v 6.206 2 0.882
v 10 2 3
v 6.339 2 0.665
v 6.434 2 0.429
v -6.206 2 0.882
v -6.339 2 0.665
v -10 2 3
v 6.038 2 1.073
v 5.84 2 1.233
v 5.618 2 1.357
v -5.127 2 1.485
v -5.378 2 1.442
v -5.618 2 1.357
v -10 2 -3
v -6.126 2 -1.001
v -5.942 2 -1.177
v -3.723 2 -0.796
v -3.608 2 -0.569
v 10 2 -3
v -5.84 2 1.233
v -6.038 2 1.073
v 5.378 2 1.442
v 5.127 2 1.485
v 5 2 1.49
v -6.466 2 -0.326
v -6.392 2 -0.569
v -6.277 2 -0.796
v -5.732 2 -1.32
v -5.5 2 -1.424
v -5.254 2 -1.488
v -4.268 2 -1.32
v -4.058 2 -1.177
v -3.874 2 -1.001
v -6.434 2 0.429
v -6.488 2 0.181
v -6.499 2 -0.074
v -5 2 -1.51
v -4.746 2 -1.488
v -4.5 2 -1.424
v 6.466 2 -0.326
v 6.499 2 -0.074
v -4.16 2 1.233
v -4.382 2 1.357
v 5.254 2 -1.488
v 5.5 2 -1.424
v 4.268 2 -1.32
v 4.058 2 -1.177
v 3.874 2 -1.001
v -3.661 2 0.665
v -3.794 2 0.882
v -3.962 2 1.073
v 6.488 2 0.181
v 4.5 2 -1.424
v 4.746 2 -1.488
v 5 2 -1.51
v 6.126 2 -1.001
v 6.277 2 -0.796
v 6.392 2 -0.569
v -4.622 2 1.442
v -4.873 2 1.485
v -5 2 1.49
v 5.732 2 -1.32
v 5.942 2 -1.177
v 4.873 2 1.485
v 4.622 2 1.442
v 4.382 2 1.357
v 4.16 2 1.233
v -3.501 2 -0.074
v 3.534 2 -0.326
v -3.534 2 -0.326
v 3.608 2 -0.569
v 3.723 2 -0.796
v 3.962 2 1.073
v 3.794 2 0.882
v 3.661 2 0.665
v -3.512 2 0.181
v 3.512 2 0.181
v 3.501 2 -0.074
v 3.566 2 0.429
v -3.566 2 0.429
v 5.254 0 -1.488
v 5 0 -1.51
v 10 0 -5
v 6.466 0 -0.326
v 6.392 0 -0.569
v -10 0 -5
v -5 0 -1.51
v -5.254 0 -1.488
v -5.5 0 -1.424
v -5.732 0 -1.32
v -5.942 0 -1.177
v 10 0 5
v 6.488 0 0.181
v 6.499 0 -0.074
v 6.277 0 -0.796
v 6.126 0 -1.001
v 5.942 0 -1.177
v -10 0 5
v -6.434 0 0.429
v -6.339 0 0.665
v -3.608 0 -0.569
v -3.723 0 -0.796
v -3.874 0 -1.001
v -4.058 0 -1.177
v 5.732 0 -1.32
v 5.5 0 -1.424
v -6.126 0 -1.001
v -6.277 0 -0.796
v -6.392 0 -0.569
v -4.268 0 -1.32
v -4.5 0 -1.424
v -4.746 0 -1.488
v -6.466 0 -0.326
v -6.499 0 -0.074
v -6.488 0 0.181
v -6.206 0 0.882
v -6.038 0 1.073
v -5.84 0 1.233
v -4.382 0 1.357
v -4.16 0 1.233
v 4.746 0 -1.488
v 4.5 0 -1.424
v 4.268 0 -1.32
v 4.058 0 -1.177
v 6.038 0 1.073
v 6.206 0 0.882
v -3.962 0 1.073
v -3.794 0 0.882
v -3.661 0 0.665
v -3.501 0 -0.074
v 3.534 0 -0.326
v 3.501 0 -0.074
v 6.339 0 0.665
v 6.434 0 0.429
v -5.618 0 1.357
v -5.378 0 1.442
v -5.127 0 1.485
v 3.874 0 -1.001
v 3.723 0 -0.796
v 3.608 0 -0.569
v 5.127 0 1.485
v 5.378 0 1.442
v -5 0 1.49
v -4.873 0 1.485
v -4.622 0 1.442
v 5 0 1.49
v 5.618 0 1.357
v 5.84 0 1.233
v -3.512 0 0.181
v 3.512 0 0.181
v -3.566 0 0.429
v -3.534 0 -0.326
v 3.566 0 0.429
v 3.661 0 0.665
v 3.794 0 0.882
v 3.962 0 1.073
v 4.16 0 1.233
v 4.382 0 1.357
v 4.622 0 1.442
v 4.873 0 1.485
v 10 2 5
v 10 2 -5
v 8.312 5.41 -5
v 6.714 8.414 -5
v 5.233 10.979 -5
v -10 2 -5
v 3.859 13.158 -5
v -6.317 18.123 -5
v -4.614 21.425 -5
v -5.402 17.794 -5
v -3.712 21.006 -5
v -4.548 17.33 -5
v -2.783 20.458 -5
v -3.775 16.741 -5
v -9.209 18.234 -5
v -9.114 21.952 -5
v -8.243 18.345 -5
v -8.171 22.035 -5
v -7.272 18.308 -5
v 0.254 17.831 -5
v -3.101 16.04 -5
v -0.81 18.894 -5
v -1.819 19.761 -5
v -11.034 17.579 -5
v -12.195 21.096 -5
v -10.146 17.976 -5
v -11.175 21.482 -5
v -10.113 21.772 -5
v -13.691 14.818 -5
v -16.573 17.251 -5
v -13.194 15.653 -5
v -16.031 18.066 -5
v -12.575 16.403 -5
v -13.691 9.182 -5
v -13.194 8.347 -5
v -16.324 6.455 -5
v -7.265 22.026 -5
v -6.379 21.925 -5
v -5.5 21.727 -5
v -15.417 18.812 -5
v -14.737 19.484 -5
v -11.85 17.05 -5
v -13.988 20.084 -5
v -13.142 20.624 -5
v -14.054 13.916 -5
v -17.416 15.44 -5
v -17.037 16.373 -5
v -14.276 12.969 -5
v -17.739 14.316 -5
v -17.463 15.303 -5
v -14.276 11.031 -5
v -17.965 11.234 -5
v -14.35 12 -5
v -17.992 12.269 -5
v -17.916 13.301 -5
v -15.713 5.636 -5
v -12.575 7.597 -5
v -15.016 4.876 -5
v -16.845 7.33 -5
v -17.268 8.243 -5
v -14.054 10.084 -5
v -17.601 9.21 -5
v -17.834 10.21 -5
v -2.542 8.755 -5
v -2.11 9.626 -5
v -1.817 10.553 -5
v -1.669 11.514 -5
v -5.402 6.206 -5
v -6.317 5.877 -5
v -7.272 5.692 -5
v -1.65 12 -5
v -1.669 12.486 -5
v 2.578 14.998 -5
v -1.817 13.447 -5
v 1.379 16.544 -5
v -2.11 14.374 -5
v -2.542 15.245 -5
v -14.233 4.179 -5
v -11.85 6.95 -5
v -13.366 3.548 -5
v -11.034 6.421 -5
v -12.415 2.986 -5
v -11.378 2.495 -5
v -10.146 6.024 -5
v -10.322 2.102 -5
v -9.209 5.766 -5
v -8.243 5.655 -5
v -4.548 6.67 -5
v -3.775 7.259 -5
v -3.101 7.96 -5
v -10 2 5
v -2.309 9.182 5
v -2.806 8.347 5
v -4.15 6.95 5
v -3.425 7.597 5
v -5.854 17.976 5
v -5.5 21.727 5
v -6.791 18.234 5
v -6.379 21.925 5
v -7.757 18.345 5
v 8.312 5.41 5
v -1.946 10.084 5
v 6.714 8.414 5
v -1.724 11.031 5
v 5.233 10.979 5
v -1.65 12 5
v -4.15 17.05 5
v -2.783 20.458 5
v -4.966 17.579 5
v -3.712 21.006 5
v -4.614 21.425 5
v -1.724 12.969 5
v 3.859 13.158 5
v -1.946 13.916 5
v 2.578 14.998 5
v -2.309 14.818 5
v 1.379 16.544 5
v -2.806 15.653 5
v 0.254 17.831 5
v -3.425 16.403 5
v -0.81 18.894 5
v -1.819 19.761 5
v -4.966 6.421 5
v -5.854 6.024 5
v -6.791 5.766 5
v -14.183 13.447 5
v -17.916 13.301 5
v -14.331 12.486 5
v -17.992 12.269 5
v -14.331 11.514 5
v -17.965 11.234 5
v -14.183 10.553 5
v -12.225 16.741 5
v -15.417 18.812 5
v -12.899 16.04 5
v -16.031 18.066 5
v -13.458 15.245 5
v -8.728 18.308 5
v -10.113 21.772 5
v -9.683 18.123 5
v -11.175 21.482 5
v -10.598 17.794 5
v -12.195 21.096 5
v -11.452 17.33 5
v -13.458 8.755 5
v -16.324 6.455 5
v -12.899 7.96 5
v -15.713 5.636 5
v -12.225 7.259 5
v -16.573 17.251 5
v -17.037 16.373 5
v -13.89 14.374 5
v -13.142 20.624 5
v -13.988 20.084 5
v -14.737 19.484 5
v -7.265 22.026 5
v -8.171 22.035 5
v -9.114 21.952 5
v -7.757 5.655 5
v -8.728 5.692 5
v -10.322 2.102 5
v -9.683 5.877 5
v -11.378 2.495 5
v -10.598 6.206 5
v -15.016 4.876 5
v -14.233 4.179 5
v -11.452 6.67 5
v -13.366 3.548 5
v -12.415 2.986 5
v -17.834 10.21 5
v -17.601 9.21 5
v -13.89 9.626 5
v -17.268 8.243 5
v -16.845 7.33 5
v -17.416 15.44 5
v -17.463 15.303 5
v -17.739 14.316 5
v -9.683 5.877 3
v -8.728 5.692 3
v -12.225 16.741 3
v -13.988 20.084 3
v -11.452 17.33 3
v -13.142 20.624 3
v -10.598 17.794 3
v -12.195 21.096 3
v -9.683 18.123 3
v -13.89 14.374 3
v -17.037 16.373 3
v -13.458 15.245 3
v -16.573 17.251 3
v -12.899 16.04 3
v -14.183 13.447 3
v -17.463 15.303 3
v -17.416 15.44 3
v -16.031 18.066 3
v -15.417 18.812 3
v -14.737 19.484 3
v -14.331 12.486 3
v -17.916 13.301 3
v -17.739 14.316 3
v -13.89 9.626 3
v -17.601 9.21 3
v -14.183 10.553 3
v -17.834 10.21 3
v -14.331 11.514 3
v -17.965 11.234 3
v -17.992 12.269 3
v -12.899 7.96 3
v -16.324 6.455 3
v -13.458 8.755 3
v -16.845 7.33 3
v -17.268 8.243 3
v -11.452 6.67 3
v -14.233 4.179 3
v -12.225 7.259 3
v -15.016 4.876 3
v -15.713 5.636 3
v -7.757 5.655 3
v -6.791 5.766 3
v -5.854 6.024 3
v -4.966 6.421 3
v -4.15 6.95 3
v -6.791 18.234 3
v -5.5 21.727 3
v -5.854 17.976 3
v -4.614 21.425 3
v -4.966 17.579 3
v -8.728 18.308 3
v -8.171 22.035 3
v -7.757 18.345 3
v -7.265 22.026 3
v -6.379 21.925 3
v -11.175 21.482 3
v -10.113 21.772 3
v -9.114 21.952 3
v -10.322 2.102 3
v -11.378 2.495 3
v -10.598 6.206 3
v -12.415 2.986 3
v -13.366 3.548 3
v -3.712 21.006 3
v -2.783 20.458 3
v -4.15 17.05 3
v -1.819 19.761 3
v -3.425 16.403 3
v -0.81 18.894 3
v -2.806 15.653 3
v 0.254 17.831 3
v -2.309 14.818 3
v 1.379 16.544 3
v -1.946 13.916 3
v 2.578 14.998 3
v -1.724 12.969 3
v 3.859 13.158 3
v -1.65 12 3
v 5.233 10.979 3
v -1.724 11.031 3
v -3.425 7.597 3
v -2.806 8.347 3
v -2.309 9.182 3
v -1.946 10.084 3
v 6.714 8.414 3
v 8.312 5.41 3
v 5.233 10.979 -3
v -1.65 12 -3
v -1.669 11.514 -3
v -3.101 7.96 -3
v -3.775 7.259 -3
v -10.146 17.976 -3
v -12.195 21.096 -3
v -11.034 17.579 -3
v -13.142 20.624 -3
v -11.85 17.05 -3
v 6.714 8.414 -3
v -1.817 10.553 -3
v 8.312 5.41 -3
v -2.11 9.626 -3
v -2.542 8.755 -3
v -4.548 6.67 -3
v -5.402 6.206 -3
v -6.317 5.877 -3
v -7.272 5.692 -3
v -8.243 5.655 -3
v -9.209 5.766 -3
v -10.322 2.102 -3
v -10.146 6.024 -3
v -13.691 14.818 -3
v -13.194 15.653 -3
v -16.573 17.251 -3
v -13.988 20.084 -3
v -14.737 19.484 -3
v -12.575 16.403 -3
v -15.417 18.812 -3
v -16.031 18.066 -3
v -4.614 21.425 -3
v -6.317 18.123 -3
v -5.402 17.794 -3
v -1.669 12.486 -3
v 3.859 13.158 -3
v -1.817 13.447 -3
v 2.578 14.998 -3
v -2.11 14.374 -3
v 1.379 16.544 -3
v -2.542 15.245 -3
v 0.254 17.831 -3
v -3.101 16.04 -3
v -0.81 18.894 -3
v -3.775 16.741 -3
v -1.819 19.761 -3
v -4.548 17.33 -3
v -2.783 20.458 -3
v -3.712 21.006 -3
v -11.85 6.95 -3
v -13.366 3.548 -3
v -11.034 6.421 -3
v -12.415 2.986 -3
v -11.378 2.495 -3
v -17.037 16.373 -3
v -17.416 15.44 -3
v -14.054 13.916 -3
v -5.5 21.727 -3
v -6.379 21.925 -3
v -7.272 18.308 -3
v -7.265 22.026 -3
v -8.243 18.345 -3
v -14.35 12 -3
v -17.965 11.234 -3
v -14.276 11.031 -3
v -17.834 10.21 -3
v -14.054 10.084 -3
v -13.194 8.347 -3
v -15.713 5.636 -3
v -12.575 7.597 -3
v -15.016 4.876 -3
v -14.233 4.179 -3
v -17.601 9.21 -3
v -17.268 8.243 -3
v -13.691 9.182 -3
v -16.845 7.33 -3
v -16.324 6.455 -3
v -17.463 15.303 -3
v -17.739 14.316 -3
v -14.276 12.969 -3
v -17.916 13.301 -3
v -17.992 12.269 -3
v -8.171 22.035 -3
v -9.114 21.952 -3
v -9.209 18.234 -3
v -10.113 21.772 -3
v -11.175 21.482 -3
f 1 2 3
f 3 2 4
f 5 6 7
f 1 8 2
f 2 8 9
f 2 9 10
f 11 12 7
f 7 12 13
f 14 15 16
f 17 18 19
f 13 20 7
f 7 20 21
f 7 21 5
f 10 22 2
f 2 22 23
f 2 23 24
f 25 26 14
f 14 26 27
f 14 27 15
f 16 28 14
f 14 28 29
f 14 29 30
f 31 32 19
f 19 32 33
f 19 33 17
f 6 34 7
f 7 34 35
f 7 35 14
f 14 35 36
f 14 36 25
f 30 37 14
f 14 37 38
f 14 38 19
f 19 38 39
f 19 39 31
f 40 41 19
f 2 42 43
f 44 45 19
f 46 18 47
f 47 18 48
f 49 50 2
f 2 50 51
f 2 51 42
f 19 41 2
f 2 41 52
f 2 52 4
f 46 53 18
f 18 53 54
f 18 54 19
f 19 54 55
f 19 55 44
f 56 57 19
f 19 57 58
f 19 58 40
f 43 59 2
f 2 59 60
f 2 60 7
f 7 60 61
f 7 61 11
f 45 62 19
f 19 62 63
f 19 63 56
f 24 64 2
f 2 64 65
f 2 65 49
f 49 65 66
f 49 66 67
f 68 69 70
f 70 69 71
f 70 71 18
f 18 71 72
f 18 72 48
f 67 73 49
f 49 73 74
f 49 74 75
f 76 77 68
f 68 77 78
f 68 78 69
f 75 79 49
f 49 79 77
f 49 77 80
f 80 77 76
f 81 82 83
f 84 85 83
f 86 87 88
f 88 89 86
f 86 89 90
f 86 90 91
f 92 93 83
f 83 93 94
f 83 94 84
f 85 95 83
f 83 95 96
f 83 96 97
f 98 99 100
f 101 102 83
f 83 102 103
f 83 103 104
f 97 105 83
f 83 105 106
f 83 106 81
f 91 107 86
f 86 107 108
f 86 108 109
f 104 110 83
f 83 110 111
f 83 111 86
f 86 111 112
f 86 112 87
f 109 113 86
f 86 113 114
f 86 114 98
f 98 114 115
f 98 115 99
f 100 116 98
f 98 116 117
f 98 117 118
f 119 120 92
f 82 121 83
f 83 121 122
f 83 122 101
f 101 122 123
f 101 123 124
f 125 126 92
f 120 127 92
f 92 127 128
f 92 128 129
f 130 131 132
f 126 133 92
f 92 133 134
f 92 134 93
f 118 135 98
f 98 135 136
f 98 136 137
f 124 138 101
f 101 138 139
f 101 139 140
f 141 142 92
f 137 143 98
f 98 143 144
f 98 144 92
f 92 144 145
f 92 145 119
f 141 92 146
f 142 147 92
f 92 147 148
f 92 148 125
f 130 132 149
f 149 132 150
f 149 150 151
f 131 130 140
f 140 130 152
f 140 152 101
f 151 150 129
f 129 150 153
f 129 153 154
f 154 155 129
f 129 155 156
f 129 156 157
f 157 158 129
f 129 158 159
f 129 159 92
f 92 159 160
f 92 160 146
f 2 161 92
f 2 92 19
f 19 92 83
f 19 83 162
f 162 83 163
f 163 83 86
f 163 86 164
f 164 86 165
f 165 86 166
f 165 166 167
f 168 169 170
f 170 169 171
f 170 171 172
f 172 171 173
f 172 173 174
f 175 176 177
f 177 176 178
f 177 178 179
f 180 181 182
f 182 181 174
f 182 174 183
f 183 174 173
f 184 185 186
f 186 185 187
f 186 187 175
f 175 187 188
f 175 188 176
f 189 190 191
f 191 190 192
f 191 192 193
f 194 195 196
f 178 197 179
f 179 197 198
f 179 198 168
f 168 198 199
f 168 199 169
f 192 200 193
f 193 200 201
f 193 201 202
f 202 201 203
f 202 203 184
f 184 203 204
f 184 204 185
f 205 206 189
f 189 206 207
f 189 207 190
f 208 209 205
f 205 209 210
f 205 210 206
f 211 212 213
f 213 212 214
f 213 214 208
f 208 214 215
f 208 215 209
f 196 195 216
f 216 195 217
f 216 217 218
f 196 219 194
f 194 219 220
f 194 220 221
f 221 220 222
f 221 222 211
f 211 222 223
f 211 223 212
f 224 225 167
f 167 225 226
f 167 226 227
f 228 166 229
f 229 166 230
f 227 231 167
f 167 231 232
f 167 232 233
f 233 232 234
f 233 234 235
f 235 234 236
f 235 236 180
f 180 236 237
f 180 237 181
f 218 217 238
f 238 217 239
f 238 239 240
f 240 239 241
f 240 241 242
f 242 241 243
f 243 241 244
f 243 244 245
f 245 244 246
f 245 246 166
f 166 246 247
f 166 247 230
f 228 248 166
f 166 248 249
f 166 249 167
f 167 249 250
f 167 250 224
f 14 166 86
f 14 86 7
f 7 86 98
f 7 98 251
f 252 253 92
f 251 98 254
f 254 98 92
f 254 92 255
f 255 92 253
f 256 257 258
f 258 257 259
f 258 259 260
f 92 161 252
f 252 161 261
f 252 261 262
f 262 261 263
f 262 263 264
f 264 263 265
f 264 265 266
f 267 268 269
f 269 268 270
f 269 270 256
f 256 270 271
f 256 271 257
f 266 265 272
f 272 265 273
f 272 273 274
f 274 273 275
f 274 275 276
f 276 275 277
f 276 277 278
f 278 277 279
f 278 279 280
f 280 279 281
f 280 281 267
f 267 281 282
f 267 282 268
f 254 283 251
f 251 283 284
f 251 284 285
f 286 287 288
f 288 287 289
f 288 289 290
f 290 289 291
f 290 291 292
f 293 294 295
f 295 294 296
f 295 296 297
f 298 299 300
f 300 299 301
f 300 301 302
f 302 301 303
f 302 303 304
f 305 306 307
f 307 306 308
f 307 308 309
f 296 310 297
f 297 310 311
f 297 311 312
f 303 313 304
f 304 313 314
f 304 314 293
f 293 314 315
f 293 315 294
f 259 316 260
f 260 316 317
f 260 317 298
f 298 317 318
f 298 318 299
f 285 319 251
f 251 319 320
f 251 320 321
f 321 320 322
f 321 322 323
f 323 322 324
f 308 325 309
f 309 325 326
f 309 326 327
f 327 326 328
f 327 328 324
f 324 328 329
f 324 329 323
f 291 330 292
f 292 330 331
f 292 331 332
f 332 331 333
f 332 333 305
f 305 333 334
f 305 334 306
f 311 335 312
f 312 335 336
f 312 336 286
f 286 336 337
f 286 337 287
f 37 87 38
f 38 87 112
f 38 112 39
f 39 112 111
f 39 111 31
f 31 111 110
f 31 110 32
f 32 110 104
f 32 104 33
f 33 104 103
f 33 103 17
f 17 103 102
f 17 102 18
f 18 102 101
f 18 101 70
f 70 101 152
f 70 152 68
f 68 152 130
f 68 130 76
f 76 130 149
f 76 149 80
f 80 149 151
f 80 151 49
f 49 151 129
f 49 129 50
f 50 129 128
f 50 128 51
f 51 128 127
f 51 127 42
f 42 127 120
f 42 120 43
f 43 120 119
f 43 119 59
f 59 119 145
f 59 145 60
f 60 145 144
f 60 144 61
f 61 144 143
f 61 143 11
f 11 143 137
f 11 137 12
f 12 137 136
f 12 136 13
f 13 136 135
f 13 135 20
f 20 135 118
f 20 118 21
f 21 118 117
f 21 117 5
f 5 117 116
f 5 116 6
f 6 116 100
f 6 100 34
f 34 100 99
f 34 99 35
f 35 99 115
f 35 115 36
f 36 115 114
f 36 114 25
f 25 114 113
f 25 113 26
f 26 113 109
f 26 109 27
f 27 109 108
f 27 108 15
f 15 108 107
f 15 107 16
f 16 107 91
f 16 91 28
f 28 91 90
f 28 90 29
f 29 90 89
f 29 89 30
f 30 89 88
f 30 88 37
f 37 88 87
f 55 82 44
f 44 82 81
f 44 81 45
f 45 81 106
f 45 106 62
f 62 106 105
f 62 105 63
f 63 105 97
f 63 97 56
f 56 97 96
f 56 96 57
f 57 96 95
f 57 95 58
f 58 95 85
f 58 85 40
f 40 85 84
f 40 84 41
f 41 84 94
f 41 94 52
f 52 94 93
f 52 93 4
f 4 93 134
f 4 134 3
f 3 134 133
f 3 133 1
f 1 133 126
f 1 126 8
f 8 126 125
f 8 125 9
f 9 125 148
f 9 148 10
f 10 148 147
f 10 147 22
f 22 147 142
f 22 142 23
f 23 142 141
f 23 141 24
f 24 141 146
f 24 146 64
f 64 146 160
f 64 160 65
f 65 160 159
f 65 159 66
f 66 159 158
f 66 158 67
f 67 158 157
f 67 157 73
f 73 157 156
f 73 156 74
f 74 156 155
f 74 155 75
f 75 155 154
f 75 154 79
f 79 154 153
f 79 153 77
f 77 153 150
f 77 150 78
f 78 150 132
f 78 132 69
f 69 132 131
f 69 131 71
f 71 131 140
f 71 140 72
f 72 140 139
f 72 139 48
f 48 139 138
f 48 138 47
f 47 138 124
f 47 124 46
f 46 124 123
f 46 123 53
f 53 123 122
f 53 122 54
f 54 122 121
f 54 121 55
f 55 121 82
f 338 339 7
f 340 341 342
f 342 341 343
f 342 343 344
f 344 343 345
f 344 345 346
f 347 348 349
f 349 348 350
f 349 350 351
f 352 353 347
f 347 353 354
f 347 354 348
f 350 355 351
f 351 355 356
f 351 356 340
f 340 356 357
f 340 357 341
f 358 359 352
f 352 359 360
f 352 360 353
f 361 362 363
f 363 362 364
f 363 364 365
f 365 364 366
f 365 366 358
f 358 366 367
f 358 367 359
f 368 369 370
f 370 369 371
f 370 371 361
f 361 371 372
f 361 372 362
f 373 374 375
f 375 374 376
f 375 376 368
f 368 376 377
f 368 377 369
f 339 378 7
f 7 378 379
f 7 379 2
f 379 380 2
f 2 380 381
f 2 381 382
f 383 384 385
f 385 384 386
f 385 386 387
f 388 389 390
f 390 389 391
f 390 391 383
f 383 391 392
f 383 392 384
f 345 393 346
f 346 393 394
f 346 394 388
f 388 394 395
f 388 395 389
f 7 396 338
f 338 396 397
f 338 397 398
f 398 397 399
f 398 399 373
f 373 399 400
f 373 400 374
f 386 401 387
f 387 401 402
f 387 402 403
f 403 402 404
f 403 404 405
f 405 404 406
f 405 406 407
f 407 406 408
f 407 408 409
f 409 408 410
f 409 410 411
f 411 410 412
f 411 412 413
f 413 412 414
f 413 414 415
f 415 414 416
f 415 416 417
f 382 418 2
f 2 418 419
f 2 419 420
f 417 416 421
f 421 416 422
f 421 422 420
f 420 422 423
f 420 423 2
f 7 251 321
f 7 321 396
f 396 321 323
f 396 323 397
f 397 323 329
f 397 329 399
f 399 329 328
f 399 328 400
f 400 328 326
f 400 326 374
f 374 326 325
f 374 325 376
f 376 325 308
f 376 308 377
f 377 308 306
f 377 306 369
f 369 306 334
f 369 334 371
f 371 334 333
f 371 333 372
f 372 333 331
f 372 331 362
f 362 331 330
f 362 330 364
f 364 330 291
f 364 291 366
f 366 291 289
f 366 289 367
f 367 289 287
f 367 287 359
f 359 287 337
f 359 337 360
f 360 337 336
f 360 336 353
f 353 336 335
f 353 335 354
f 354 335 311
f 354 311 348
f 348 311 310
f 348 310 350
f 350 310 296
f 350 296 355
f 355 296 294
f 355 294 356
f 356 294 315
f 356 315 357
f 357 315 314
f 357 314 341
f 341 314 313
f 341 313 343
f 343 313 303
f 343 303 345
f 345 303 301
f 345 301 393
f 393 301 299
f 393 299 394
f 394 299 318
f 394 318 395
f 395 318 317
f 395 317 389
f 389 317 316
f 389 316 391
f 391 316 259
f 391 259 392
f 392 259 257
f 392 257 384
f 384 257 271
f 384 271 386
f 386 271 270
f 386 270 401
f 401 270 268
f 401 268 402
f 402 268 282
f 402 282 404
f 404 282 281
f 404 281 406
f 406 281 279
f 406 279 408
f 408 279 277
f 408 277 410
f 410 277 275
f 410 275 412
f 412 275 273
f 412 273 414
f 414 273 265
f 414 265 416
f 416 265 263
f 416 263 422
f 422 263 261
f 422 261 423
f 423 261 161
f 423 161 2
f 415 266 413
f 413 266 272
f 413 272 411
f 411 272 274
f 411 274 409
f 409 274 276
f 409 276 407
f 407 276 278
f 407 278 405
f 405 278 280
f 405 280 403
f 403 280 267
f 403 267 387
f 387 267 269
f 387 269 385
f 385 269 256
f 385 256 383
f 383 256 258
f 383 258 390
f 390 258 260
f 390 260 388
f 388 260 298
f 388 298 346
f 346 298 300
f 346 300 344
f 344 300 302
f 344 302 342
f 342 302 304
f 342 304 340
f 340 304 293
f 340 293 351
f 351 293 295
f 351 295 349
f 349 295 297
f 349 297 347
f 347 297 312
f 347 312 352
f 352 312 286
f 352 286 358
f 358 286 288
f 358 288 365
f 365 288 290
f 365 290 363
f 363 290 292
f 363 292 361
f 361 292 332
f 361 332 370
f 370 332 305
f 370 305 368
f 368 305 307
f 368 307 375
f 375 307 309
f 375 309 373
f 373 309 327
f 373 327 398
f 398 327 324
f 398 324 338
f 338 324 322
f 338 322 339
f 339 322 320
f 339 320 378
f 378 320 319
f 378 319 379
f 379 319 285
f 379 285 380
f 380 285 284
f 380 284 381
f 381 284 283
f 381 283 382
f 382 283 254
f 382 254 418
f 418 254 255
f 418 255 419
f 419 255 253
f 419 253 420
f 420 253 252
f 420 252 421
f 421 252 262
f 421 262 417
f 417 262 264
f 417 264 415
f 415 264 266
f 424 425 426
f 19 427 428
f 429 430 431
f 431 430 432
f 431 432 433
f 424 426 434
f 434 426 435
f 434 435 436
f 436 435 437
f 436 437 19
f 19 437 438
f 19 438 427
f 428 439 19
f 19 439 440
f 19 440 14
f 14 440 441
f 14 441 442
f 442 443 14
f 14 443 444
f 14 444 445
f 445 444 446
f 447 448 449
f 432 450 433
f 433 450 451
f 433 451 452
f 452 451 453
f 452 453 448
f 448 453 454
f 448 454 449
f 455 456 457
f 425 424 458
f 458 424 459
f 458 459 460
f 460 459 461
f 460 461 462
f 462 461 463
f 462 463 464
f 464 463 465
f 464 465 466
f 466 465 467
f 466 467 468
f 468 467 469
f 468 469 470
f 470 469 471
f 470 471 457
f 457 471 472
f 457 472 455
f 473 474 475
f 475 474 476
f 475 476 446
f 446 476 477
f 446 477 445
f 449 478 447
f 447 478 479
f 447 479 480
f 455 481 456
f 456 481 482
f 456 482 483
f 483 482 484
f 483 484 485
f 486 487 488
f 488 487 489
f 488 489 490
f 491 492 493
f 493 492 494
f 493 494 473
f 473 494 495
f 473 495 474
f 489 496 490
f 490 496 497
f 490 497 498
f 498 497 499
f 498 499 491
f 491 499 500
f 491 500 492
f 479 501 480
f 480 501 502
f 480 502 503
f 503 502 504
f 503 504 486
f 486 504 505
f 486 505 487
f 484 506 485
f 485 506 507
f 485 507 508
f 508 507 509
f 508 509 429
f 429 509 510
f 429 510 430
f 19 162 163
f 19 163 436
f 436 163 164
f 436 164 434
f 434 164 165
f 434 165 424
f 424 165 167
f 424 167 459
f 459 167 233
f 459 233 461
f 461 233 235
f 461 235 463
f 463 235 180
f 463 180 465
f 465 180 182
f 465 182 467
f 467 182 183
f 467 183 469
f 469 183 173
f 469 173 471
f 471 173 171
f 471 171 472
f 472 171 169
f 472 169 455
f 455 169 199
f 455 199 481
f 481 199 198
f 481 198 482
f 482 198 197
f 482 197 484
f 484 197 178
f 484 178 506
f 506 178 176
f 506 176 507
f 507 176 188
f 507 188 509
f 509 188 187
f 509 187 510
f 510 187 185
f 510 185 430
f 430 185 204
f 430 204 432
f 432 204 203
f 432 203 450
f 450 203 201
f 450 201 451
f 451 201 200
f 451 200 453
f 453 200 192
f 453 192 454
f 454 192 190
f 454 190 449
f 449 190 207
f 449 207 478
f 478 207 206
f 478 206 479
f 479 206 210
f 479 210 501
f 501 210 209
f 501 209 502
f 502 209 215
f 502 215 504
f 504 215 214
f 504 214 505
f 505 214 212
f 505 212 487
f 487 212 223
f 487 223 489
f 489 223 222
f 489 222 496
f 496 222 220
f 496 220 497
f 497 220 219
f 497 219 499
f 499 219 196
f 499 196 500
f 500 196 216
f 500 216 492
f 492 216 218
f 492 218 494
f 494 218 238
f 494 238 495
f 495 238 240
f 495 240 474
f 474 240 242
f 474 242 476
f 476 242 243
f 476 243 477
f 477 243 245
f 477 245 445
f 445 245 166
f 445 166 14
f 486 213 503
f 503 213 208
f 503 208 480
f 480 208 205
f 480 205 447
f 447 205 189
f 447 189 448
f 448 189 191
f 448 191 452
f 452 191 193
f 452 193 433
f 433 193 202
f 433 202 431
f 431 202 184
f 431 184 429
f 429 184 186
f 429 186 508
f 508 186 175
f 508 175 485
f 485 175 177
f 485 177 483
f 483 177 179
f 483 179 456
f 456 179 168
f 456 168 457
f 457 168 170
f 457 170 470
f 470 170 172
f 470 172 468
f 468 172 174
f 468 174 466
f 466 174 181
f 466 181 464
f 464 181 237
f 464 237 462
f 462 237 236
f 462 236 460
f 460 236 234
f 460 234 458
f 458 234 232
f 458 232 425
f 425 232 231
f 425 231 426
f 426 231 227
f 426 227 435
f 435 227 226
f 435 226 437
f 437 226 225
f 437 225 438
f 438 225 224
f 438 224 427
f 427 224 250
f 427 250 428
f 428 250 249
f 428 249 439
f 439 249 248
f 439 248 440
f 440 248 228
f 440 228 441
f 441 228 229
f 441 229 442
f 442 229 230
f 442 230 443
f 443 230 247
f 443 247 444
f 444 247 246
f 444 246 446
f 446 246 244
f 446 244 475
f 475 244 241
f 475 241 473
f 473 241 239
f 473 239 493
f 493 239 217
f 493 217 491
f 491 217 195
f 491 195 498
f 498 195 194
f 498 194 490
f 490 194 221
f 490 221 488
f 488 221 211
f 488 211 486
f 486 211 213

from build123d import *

# Parameters (mm, degrees)
SKETCH1_W           = 20
SKETCH1_H           = 10
SKETCH1_R           = 1.5
BOSS_EXTRUDE1_DEPTH = 2
SKETCH2_R           = 6.35
BOSS_EXTRUDE2_DEPTH = 2
BOSS_EXTRUDE3_START = -8
SKETCH2_3_R         = 6.35
BOSS_EXTRUDE3_DEPTH = 2


with BuildPart() as part:
    # Sketch1 → Boss-Extrude1 (new body)
    with BuildSketch(Plane(origin=(0, 0, 0), x_dir=(1, 0, 0), z_dir=(0, 1, 0))):
        Rectangle(SKETCH1_W, SKETCH1_H)
        with Locations((-5, 0.01)):
            Circle(SKETCH1_R, mode=Mode.SUBTRACT)
        with Locations((5, 0.01)):
            Circle(SKETCH1_R, mode=Mode.SUBTRACT)
    extrude(amount=BOSS_EXTRUDE1_DEPTH)

    # Sketch2 → Boss-Extrude2 (add)
    with BuildSketch(Plane.XY.offset(5)):
        with BuildLine():
            Line((-10, 2), (-10, 0))
            Line((-10, 0), (10, 0))
            Line((10, 0), (10, 2))
            add(Edge.make_bspline(
                [(-10, 2), (-19.934312567, 5.008938653), (-20.001123005, 18.401993577), (-5.496887853, 23.599149902), (1.470480463, 19.813788664), (10, 2)],
                knots=[0, 0, 0, 0, 0.526796962, 0.626796962, 1, 1, 1, 1], degree=3))
        make_face()
        with Locations((-8, 12)):
            Circle(SKETCH2_R, mode=Mode.SUBTRACT)
    extrude(amount=-BOSS_EXTRUDE2_DEPTH)

    # Sketch2<3> → Boss-Extrude3 (add)
    with BuildSketch(Plane.XY.offset(5).offset(BOSS_EXTRUDE3_START)):
        with BuildLine():
            Line((-10, 2), (-10, 0))
            Line((-10, 0), (10, 0))
            Line((10, 0), (10, 2))
            add(Edge.make_bspline(
                [(-10, 2), (-19.934312567, 5.008938653), (-20.001123005, 18.401993577), (-5.496887853, 23.599149902), (1.470480463, 19.813788664), (10, 2)],
                knots=[0, 0, 0, 0, 0.526796962, 0.626796962, 1, 1, 1, 1], degree=3))
        make_face()
        with Locations((-8, 12)):
            Circle(SKETCH2_3_R, mode=Mode.SUBTRACT)
    extrude(amount=-BOSS_EXTRUDE3_DEPTH)


solid = part.part
